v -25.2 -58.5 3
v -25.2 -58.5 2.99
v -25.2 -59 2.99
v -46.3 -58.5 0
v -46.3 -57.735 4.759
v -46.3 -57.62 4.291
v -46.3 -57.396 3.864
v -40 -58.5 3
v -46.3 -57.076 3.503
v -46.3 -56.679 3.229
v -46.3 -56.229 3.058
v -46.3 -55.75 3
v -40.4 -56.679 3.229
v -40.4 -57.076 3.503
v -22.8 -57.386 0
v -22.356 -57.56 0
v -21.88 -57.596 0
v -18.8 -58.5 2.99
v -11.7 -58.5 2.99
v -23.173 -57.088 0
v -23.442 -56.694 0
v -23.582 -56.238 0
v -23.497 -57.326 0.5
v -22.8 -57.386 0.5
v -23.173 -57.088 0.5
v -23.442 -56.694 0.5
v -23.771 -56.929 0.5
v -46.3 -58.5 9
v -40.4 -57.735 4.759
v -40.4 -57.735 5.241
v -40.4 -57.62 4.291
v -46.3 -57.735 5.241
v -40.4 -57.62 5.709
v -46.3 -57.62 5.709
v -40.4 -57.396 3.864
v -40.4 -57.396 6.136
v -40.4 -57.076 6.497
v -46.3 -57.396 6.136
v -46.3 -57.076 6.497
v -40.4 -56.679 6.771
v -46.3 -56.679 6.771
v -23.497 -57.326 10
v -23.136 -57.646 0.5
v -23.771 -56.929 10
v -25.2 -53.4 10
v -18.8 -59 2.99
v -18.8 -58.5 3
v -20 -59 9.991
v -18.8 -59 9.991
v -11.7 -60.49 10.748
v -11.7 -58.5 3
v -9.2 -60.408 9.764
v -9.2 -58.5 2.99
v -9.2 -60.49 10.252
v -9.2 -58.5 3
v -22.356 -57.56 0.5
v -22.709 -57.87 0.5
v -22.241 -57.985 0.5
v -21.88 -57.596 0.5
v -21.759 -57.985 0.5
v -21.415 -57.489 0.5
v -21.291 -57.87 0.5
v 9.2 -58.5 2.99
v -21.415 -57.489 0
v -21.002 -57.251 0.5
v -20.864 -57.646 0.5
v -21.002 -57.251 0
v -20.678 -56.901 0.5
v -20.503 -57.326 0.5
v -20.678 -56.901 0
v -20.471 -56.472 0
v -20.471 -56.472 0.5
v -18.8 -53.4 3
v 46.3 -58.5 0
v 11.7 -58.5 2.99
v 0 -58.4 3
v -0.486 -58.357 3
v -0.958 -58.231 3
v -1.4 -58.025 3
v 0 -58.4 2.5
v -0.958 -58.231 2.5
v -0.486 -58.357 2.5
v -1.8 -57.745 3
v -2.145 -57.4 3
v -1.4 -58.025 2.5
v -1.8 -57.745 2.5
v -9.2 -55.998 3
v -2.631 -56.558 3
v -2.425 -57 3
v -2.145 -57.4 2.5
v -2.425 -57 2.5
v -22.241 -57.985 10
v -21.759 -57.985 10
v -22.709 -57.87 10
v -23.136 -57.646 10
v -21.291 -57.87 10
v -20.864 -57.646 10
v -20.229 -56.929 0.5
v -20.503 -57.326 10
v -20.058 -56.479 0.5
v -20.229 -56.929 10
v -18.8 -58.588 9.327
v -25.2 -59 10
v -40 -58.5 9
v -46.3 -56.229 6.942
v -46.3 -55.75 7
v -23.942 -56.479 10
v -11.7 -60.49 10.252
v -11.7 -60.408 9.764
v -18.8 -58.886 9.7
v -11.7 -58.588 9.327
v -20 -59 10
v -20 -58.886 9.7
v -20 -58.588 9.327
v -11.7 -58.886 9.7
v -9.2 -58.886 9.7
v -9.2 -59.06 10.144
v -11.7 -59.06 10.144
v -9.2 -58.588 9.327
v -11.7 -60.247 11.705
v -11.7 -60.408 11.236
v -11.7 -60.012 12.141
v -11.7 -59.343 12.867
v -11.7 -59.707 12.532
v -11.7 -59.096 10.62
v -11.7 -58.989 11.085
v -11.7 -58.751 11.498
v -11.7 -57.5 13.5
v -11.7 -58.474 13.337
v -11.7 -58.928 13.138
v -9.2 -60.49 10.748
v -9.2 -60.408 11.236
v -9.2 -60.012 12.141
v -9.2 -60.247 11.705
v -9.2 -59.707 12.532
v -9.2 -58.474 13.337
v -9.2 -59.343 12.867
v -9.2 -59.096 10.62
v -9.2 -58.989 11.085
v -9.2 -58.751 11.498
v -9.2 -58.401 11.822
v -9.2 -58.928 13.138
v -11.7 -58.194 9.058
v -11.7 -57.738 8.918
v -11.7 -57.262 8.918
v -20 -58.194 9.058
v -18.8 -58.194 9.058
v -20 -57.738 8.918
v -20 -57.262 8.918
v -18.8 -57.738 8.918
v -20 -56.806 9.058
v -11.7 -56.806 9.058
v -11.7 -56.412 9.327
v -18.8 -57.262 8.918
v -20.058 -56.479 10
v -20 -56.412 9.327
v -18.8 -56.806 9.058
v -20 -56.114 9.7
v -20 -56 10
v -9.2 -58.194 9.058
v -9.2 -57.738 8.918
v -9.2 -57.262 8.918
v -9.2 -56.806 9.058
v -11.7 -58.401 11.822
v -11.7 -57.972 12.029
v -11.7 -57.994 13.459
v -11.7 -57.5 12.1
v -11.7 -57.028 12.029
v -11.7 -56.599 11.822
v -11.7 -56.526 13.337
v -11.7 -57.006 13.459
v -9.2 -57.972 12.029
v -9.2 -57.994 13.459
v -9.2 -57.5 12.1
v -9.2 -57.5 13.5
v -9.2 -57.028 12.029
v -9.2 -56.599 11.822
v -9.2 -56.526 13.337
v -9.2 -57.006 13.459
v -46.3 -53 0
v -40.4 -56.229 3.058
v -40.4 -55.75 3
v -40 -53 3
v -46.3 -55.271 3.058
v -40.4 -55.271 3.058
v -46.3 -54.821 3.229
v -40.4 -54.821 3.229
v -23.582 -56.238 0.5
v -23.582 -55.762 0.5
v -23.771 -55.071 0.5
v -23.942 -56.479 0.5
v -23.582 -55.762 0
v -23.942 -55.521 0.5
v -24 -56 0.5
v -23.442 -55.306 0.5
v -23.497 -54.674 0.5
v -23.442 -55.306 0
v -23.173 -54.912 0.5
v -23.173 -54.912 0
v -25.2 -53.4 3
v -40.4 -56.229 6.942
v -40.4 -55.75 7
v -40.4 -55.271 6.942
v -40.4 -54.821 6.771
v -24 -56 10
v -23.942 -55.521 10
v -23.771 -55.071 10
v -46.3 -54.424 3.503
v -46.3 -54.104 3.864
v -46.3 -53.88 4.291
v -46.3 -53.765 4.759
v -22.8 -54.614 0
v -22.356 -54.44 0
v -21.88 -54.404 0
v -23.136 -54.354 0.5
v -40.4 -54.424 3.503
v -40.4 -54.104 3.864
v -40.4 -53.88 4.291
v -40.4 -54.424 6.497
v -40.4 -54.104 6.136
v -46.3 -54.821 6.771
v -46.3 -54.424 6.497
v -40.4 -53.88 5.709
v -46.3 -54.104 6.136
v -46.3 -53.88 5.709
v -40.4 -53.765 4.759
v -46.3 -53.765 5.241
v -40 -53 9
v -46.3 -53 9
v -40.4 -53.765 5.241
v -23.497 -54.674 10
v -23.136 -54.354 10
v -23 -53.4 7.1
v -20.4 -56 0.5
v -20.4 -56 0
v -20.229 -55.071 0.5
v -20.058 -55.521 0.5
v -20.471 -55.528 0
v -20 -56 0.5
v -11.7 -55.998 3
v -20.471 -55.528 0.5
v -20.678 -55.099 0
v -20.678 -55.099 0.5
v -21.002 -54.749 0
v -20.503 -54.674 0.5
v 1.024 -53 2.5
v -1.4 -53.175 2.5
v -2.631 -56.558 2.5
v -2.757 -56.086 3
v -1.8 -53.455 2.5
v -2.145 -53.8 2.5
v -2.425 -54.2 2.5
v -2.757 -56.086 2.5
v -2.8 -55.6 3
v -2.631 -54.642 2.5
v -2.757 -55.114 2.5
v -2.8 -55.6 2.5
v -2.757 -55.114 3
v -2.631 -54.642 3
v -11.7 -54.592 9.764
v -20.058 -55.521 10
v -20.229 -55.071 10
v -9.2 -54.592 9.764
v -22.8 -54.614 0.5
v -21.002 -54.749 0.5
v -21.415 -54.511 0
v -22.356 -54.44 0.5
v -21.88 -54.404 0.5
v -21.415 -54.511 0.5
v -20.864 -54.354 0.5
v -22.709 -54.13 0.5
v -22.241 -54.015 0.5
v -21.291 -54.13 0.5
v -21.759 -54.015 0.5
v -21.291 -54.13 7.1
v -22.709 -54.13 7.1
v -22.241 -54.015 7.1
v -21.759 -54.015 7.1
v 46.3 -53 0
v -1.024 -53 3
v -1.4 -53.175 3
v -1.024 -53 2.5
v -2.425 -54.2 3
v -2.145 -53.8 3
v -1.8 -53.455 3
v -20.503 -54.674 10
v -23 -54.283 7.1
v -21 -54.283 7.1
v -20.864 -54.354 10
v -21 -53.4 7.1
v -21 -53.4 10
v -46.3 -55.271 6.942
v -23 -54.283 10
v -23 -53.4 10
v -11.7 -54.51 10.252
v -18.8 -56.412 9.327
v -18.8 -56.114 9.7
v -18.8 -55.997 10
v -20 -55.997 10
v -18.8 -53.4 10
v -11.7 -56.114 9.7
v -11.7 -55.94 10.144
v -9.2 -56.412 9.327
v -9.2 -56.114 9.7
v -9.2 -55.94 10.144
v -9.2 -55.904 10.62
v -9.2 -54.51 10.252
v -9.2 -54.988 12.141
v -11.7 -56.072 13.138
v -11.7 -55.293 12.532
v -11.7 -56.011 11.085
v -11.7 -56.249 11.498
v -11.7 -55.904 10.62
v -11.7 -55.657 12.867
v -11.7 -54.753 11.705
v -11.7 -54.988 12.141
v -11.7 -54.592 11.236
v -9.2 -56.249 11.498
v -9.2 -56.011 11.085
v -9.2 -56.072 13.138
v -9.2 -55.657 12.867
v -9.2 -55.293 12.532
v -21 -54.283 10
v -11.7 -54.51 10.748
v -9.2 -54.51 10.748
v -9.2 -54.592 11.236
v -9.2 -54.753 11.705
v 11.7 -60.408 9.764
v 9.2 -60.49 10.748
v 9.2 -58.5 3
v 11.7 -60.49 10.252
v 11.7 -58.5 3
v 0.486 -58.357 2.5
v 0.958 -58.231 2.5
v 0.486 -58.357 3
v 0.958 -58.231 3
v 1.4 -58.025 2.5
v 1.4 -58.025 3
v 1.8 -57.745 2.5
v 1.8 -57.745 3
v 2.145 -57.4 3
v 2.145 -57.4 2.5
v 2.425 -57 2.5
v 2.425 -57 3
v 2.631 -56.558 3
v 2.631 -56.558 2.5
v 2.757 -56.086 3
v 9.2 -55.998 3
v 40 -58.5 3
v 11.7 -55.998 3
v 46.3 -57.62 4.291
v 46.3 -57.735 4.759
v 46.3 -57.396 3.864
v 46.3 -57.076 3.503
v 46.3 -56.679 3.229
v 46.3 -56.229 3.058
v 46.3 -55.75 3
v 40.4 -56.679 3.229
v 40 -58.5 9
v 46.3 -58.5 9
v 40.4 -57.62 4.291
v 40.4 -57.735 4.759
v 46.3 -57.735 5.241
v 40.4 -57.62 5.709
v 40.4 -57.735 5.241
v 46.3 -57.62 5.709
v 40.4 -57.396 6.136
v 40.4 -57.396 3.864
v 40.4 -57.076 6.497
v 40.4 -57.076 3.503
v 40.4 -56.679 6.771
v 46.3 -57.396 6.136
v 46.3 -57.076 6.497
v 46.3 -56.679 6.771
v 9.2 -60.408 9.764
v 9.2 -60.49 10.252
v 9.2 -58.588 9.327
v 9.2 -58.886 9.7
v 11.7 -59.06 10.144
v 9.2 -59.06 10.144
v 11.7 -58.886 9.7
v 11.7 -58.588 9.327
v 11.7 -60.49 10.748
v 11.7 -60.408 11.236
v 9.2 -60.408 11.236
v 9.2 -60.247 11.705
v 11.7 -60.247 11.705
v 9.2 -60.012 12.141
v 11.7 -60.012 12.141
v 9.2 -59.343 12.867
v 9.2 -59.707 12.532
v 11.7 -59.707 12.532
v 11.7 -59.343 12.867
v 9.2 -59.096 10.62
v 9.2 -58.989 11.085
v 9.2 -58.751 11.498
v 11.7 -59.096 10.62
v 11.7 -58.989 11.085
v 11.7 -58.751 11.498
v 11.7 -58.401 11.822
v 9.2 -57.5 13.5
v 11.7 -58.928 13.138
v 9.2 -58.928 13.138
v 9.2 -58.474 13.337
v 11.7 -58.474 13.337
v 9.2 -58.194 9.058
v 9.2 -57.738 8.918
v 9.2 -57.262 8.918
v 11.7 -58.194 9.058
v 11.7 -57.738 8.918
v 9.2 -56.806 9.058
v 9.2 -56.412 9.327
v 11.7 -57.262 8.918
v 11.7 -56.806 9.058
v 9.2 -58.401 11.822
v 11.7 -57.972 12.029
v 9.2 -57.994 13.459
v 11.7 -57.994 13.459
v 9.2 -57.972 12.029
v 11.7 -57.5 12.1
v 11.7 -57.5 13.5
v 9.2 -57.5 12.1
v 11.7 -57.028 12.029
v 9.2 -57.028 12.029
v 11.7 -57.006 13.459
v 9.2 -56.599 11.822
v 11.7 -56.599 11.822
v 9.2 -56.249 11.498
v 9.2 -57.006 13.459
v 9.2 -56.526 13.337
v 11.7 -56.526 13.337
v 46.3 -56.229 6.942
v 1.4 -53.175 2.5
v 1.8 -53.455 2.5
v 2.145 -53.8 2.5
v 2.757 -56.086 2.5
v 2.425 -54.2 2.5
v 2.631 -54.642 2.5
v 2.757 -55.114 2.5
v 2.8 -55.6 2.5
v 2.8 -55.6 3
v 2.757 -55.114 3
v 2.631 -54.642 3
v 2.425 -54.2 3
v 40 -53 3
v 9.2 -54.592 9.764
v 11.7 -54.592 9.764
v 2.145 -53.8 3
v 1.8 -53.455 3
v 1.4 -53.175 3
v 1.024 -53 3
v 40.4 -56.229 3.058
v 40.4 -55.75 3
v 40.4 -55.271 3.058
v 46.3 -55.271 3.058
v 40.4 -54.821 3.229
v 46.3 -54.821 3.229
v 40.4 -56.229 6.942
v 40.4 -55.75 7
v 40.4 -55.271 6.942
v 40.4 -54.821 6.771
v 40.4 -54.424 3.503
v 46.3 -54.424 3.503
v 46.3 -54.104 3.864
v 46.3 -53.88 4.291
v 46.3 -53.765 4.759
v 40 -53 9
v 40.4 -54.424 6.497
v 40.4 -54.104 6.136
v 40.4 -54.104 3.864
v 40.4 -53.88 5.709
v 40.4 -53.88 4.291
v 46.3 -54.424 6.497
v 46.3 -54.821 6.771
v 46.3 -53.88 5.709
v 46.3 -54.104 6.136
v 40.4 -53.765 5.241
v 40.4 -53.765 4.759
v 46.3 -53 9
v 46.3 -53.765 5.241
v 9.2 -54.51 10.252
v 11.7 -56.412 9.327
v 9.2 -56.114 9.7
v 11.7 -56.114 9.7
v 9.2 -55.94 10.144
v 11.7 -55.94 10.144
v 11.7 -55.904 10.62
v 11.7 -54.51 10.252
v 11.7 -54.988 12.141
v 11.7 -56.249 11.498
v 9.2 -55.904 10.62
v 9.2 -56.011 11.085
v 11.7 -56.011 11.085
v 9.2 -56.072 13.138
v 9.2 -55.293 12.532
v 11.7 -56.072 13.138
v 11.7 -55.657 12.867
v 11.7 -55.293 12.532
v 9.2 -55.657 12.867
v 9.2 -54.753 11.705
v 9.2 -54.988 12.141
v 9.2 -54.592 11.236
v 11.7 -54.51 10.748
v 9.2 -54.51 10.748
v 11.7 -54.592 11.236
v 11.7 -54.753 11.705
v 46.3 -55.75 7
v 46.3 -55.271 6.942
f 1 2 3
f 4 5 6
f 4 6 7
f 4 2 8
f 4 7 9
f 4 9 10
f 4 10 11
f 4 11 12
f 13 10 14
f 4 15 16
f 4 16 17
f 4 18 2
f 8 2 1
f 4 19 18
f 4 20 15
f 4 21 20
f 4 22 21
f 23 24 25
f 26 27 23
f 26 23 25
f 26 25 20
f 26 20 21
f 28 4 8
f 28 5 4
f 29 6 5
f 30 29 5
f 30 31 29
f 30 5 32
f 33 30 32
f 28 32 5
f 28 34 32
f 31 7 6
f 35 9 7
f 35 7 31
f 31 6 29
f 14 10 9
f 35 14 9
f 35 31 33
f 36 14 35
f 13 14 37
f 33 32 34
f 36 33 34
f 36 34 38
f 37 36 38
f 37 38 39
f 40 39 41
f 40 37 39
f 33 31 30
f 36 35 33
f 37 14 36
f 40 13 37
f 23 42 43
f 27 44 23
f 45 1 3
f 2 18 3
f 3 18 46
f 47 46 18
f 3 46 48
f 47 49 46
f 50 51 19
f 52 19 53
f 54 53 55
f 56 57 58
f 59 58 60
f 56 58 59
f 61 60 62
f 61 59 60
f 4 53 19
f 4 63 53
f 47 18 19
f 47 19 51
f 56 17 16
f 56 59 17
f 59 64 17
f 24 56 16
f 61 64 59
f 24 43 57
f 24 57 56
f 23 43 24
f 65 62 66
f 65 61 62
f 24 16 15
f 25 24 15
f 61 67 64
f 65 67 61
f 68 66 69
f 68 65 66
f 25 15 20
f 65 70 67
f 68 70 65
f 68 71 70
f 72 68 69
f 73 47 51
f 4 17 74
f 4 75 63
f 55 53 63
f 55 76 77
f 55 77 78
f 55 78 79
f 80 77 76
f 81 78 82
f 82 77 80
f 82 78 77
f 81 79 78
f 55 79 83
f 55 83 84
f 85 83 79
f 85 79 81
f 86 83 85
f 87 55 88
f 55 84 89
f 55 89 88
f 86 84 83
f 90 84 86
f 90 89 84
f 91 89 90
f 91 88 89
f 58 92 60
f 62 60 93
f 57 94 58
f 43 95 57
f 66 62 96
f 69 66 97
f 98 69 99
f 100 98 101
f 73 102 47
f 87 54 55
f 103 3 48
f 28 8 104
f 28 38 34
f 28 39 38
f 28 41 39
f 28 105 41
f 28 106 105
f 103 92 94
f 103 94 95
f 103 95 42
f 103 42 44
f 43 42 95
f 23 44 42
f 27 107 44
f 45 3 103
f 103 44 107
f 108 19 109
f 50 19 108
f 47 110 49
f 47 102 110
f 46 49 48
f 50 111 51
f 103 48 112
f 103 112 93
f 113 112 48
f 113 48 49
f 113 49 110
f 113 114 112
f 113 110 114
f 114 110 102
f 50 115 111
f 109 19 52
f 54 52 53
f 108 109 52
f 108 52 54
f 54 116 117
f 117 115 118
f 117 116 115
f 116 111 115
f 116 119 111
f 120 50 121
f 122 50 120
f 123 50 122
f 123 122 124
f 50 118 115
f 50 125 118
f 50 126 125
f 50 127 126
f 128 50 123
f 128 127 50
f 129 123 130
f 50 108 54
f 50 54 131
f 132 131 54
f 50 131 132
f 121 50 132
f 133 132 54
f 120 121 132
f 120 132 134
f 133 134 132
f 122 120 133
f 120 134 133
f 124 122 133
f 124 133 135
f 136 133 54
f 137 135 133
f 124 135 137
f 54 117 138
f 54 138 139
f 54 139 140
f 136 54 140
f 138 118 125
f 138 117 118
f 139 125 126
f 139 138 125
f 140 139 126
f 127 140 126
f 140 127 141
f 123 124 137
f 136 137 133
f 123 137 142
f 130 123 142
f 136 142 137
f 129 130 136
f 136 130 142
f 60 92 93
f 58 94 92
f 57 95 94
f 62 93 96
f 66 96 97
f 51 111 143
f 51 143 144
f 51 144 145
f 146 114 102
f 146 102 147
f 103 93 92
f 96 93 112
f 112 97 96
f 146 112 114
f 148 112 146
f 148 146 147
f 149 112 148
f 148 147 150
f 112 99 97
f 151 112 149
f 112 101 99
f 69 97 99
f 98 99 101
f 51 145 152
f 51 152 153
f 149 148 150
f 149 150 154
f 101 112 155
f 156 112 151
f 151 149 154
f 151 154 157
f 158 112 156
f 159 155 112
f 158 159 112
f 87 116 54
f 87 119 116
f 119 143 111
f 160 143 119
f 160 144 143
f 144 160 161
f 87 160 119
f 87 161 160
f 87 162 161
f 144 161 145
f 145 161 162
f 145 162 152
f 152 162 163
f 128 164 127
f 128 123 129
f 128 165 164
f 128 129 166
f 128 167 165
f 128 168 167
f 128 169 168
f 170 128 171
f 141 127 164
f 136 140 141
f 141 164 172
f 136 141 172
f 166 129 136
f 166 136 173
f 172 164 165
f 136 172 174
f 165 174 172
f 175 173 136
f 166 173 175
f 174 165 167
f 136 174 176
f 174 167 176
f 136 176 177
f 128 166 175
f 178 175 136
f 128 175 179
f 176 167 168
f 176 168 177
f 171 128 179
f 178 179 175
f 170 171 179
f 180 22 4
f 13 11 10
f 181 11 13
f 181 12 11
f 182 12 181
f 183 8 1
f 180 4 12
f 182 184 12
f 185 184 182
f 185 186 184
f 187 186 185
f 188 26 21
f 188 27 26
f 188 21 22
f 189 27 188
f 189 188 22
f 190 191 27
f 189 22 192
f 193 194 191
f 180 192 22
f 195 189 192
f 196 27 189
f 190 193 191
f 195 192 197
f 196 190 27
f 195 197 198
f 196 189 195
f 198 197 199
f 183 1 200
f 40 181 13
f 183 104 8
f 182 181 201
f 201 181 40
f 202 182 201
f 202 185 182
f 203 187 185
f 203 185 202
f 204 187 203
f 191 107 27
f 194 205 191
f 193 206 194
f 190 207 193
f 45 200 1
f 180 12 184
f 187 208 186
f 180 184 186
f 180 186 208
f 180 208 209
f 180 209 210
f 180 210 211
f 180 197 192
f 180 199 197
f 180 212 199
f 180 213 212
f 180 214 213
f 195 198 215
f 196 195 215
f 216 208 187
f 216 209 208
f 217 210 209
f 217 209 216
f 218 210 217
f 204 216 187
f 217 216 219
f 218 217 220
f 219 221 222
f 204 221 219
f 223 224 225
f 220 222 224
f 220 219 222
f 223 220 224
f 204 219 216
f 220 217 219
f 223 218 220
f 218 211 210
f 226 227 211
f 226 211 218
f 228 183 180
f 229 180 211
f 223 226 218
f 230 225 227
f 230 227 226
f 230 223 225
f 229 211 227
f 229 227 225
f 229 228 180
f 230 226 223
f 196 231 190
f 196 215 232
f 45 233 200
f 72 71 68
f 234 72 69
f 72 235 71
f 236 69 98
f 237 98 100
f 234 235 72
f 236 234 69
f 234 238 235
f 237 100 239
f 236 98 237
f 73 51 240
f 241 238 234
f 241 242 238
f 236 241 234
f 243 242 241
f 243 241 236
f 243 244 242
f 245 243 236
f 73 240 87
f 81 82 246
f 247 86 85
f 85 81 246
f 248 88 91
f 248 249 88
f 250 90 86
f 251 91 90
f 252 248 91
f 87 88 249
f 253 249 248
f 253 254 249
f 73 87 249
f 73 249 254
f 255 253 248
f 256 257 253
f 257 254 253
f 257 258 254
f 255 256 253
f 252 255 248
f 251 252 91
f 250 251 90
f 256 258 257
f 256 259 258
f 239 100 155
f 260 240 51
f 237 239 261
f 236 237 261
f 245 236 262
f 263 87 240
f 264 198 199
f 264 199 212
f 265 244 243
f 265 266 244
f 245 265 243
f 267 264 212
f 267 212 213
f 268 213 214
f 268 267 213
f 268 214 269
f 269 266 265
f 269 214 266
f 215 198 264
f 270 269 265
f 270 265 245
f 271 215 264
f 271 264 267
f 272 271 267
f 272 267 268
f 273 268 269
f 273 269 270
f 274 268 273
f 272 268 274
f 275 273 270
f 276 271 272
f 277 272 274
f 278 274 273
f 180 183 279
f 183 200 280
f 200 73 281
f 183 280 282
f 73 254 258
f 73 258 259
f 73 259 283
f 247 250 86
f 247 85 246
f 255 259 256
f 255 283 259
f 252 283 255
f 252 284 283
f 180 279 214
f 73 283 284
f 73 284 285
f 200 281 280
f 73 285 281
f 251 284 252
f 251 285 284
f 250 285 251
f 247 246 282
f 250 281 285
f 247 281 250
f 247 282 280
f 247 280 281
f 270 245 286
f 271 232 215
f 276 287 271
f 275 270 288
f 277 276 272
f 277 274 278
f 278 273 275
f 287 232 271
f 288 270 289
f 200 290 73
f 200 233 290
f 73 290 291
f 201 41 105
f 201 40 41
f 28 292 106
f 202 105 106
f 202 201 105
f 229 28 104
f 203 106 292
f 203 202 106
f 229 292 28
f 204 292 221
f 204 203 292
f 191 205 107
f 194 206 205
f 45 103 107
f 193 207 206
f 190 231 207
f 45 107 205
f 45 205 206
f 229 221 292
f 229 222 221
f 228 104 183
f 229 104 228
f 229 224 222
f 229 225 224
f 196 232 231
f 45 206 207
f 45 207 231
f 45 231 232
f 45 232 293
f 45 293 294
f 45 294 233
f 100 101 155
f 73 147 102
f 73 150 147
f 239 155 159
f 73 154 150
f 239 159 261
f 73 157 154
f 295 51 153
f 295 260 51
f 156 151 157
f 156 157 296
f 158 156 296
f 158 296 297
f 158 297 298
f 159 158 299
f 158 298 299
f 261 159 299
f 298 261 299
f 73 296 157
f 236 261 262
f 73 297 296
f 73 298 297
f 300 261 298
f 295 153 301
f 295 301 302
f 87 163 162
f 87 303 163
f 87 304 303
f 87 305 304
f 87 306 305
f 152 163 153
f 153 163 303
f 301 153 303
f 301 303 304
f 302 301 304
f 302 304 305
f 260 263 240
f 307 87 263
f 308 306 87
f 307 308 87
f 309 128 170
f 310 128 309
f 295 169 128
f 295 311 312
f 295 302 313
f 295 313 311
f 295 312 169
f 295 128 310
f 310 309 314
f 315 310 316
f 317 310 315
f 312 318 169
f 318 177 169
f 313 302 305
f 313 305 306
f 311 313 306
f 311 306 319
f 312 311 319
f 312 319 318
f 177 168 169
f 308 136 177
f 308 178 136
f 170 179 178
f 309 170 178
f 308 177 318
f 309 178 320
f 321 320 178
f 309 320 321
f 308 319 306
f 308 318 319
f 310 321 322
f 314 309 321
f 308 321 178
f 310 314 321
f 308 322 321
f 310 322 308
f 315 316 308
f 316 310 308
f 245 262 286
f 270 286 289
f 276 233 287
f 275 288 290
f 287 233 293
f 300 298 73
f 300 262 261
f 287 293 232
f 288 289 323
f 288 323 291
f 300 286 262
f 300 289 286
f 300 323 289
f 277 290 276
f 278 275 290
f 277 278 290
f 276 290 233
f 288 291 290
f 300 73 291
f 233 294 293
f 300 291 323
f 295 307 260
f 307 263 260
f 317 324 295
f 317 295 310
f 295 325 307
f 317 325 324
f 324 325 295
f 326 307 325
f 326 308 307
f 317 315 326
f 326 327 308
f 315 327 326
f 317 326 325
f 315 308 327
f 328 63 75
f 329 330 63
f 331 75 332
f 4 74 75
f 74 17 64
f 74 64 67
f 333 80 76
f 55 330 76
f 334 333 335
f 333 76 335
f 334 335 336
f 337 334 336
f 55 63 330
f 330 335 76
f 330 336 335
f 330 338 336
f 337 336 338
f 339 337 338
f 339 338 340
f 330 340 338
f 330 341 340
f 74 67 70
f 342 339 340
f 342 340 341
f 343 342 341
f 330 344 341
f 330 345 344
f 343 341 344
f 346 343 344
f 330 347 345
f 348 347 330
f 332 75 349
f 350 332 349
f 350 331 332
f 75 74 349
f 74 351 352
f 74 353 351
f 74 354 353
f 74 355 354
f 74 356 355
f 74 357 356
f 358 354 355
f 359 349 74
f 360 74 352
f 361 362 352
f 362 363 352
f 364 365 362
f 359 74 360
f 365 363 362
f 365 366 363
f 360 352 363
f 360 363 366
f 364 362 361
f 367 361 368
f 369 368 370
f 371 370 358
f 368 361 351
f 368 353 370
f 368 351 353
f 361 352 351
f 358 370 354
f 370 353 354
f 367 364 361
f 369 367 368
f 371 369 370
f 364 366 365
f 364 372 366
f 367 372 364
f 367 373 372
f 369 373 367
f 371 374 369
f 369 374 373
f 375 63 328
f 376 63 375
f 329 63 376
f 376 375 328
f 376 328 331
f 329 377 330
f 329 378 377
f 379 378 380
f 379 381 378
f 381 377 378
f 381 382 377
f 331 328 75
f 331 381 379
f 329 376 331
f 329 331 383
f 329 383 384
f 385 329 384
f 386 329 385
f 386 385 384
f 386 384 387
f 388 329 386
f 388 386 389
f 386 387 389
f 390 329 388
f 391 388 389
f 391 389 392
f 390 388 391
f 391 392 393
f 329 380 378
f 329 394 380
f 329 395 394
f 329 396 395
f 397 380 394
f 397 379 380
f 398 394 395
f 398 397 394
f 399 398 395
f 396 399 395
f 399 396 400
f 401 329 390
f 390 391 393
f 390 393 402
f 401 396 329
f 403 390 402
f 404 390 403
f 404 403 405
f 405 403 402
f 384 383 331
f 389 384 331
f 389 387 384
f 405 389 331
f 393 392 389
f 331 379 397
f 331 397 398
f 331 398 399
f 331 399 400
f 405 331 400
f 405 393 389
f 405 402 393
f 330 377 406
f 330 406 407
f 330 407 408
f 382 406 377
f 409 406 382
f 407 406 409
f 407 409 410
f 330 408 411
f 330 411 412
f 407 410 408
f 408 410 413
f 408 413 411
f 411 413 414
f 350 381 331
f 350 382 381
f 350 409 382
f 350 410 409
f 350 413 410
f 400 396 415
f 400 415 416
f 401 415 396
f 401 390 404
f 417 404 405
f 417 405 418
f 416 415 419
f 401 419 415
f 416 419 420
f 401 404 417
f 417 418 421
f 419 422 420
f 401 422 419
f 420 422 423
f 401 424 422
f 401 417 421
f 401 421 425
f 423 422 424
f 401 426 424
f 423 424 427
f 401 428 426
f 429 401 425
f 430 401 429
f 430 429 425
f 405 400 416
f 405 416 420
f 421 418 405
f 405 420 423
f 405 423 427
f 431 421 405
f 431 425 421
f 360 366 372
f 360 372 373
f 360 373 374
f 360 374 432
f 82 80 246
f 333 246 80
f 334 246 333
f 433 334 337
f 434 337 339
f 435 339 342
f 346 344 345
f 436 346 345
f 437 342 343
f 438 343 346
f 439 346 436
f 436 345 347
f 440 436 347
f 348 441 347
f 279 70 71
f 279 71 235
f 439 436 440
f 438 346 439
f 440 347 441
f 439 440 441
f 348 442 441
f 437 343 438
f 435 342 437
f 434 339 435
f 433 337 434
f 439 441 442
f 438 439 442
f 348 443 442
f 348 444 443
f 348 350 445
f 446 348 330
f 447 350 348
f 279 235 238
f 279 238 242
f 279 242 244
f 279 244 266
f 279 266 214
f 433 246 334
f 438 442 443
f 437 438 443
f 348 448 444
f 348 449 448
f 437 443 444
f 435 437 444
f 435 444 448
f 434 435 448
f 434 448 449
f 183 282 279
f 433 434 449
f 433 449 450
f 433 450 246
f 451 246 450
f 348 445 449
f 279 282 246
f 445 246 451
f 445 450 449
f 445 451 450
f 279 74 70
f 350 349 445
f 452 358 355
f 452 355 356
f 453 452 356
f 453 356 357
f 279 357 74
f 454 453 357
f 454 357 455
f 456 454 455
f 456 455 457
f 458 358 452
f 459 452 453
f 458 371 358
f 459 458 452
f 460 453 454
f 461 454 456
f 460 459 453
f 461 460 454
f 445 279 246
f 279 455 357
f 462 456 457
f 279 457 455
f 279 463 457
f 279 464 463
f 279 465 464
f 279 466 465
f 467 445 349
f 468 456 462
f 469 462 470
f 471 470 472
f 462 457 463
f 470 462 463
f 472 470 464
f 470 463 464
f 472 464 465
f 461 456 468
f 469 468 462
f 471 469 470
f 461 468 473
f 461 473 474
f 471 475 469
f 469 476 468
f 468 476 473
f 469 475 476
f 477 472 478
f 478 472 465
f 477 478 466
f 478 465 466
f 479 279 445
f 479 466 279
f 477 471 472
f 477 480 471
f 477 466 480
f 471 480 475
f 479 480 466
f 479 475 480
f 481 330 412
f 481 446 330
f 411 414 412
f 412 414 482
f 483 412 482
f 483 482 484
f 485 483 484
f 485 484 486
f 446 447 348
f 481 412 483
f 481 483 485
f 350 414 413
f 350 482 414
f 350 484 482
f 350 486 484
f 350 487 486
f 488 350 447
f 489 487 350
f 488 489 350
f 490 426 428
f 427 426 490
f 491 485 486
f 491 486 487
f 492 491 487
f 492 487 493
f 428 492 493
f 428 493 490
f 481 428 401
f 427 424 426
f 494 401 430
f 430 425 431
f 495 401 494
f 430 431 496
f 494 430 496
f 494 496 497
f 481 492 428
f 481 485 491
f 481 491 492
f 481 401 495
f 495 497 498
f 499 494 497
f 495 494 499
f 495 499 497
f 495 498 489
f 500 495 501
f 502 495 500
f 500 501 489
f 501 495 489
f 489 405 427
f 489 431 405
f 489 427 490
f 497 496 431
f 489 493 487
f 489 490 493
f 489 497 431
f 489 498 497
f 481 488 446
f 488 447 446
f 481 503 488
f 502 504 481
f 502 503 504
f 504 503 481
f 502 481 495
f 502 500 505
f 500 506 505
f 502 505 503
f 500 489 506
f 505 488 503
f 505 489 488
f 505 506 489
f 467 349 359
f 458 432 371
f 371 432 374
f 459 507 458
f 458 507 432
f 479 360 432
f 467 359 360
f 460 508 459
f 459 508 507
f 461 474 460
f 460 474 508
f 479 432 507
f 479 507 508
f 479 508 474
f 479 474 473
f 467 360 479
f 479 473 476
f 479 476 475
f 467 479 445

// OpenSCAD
// file: lib/lib.scad
// Shared helpers. Include AFTER params.scad (needs TOL, M3_* etc.).
$fa = 4; $fs = 0.5;

module rrect(size, r) {            // 2D rounded rectangle, centred
    r2 = min(r, min(size[0], size[1]) / 2 - 0.001);
    offset(r = r2) square([size[0] - 2 * r2, size[1] - 2 * r2], center = true);
}
module rbox(size, r, center_xy = true) {   // box with rounded vertical edges
    translate(center_xy ? [0, 0, 0] : [size[0] / 2, size[1] / 2, 0])
        linear_extrude(size[2]) rrect([size[0], size[1]], r);
}
module rbox_at(x0, x1, y0, y1, z0, z1, r = 0.01) {
    translate([(x0 + x1) / 2, (y0 + y1) / 2, z0]) rbox([x1 - x0, y1 - y0, z1 - z0], r);
}
module box_at(x0, x1, y0, y1, z0, z1) { translate([x0, y0, z0]) cube([x1 - x0, y1 - y0, z1 - z0]); }

module ring(ro, ri, h) { difference() { cylinder(r = ro, h = h); translate([0, 0, -1]) cylinder(r = ri, h = h + 2); } }
module ring_sector(ro, ri, h, a0, a1) {
    intersection() {
        ring(ro, ri, h);
        linear_extrude(h) polygon(concat([[0, 0]], [for (a = [a0 : (a1 - a0) / 24 : a1]) 2 * ro * [cos(a), sin(a)]]));
    }
}
// teardrop hole along an axis lying horizontal (axis = Y after rotation), printable w/o support
module teardrop2d(d) { union() { circle(d = d); rotate(45) square(d / 2); } }
// vertical heat-set insert hole, opening at z=0 going +z (depth l)
module insert_hole(l = M3_INSERT_L) { translate([0, 0, -EPS]) cylinder(d = M3_INSERT_D, h = l + EPS); }
module m3_clear(l) { translate([0, 0, -EPS]) cylinder(d = M3_CLEAR, h = l + 2 * EPS); }
module m3_csk(l) {  // countersunk clearance from z=0 upward, head at z=0 side
    translate([0, 0, -EPS]) { cylinder(d = M3_CLEAR, h = l + 2 * EPS); cylinder(d1 = 6.4, d2 = M3_CLEAR, h = 1.7); }
}
module card2d() { rrect([CARD_L, CARD_W], CARD_R); }
module card_at(cy, z) { translate([0, cy, z]) linear_extrude(CARD_T) card2d(); }

// ---- gears ----
function _inv(a) = tan(a) - a * PI_ / 180;           // involute function, a in deg
function _invpt(rb, r, ang0, s) = let(al = acos(rb / r), th = ang0 - s * (_inv(al) * 180 / PI_)) [r * cos(th), r * sin(th)];
module involute_gear2d(m, z, pa = 20, clearance = 0.05) {
    rp = m * z / 2; rb = rp * cos(pa); ra = rp + m - clearance; rf = rp - 1.25 * m;
    half = 90 / z + _inv(pa) * 180 / PI_;            // tooth half-angle at base (deg)
    n = 8;
    rs = [for (i = [0 : n]) max(rb, rf) + (ra - max(rb, rf)) * i / n];
    union() {
        circle(r = rf, $fn = z * 4);
        for (k = [0 : z - 1]) rotate(k * 360 / z) polygon(concat(
            [[rf * cos(-half), rf * sin(-half)]],
            [for (r = rs) let(p = _invpt(rb, r, half, 1)) [p[0], -p[1]]],
            [for (i = [n : -1 : 0]) _invpt(rb, rs[i], half, 1)],
            [[rf * cos(half), rf * sin(half)]]));
    }
}
// straight gear rack (2D in XY: teeth along +x, pointing -y, pitch line at y=0)
module gear_rack2d(m, len, back = 3) {
    p = PI_ * m; ad = m; de = 1.25 * m; t = tan(20);
    n = ceil(len / p) + 1;
    intersection() {
        union() {
            translate([0, de]) square([len, back]);
            for (i = [0 : n]) translate([i * p - p / 4, 0]) polygon([
                [-(p / 4 + de * t), de + 0.01], [p / 4 + de * t + 0.01, de + 0.01],
                [p / 4 - ad * t, -ad], [-(p / 4 - ad * t), -ad] ]);
        }
        translate([0, -ad - 1]) square([len, ad + de + back + 2]);
    }
}
// GT2 belt-tooth profile ring (teeth outward), 2D
module gt2_ring2d(n, r_land, ri) {
    union() {
        difference() { circle(r = r_land + 0.01, $fn = n * 2); circle(r = ri, $fn = n * 2); }
        for (k = [0 : n - 1]) rotate(k * 360 / n)
            translate([r_land, 0]) hull() { translate([-0.2, 0]) square([0.2, 1.0], center = true); translate([0.25, 0]) circle(r = 0.5, $fn = 12); }
    }
}
// main file
// Launcher entry floor (top = Z_EJECT) between the side plates: idler pivot lugs,
// spring seat, exit IR receiver cup. Print: upside down (top face on bed), no supports.
include <params.scad>
include <lib/lib.scad>
e = Z_EJECT;
module launcher_floor() difference() {
    union() {
        box_at(-LF_XI + 0.1, LF_XI - 0.1, LF_Y0, LFL_Y1, e - 3, e);
        for (s = [-1, 1]) box_at(s > 0 ? 40 : -LF_XI + 0.1, s > 0 ? LF_XI - 0.1 : -40, LF_Y0, LFL_Y1, e - 9, e);
        for (s = [-1, 1]) hull() {
            box_at(s > 0 ? 9.2 : -11.7, s > 0 ? 11.7 : -9.2, LF_Y0 + 3, LFL_Y1, e - 3.5, e - 3 + EPS);
            translate([s * 10.45, IDL_P[0], e + IDL_P[1]]) rotate([0, 90, 0]) cylinder(r = 3, h = 2.5, center = true);
        }
        translate([EXITIR_X, EXITIR_Y, e - 10]) box_at(-3.2, 3.2, LF_Y0 - EXITIR_Y + 0.4, 3, 0, 7 + EPS);
    }
    for (s = [-1, 1]) translate([s * LF_XI, (LF_Y0 + LFL_Y1) / 2, e - 5]) rotate([0, -s * 90, 0]) insert_hole();
    translate([0, IDL_P[0], e + IDL_P[1]]) rotate([0, 90, 0]) cylinder(d = SHAFT_D + 0.2, h = 40, center = true);
    translate([0, IDL_SPRING_Y, e - 4]) cylinder(d = 5.6, h = 1.5);                          // spring seat
    translate([EXITIR_X, EXITIR_Y, e - 10.1]) { cylinder(d = 4.0, h = 9.6); cylinder(d = 3.2, h = 20); }
    translate([EXITIR_X, EXITIR_Y - 1, e - 10.1]) box_at(-1, 1, -2, 0, 0, 3);
}
module launcher_floor_print() translate([0, 0, e]) rotate([180, 0, 0]) launcher_floor();
launcher_floor_print();
